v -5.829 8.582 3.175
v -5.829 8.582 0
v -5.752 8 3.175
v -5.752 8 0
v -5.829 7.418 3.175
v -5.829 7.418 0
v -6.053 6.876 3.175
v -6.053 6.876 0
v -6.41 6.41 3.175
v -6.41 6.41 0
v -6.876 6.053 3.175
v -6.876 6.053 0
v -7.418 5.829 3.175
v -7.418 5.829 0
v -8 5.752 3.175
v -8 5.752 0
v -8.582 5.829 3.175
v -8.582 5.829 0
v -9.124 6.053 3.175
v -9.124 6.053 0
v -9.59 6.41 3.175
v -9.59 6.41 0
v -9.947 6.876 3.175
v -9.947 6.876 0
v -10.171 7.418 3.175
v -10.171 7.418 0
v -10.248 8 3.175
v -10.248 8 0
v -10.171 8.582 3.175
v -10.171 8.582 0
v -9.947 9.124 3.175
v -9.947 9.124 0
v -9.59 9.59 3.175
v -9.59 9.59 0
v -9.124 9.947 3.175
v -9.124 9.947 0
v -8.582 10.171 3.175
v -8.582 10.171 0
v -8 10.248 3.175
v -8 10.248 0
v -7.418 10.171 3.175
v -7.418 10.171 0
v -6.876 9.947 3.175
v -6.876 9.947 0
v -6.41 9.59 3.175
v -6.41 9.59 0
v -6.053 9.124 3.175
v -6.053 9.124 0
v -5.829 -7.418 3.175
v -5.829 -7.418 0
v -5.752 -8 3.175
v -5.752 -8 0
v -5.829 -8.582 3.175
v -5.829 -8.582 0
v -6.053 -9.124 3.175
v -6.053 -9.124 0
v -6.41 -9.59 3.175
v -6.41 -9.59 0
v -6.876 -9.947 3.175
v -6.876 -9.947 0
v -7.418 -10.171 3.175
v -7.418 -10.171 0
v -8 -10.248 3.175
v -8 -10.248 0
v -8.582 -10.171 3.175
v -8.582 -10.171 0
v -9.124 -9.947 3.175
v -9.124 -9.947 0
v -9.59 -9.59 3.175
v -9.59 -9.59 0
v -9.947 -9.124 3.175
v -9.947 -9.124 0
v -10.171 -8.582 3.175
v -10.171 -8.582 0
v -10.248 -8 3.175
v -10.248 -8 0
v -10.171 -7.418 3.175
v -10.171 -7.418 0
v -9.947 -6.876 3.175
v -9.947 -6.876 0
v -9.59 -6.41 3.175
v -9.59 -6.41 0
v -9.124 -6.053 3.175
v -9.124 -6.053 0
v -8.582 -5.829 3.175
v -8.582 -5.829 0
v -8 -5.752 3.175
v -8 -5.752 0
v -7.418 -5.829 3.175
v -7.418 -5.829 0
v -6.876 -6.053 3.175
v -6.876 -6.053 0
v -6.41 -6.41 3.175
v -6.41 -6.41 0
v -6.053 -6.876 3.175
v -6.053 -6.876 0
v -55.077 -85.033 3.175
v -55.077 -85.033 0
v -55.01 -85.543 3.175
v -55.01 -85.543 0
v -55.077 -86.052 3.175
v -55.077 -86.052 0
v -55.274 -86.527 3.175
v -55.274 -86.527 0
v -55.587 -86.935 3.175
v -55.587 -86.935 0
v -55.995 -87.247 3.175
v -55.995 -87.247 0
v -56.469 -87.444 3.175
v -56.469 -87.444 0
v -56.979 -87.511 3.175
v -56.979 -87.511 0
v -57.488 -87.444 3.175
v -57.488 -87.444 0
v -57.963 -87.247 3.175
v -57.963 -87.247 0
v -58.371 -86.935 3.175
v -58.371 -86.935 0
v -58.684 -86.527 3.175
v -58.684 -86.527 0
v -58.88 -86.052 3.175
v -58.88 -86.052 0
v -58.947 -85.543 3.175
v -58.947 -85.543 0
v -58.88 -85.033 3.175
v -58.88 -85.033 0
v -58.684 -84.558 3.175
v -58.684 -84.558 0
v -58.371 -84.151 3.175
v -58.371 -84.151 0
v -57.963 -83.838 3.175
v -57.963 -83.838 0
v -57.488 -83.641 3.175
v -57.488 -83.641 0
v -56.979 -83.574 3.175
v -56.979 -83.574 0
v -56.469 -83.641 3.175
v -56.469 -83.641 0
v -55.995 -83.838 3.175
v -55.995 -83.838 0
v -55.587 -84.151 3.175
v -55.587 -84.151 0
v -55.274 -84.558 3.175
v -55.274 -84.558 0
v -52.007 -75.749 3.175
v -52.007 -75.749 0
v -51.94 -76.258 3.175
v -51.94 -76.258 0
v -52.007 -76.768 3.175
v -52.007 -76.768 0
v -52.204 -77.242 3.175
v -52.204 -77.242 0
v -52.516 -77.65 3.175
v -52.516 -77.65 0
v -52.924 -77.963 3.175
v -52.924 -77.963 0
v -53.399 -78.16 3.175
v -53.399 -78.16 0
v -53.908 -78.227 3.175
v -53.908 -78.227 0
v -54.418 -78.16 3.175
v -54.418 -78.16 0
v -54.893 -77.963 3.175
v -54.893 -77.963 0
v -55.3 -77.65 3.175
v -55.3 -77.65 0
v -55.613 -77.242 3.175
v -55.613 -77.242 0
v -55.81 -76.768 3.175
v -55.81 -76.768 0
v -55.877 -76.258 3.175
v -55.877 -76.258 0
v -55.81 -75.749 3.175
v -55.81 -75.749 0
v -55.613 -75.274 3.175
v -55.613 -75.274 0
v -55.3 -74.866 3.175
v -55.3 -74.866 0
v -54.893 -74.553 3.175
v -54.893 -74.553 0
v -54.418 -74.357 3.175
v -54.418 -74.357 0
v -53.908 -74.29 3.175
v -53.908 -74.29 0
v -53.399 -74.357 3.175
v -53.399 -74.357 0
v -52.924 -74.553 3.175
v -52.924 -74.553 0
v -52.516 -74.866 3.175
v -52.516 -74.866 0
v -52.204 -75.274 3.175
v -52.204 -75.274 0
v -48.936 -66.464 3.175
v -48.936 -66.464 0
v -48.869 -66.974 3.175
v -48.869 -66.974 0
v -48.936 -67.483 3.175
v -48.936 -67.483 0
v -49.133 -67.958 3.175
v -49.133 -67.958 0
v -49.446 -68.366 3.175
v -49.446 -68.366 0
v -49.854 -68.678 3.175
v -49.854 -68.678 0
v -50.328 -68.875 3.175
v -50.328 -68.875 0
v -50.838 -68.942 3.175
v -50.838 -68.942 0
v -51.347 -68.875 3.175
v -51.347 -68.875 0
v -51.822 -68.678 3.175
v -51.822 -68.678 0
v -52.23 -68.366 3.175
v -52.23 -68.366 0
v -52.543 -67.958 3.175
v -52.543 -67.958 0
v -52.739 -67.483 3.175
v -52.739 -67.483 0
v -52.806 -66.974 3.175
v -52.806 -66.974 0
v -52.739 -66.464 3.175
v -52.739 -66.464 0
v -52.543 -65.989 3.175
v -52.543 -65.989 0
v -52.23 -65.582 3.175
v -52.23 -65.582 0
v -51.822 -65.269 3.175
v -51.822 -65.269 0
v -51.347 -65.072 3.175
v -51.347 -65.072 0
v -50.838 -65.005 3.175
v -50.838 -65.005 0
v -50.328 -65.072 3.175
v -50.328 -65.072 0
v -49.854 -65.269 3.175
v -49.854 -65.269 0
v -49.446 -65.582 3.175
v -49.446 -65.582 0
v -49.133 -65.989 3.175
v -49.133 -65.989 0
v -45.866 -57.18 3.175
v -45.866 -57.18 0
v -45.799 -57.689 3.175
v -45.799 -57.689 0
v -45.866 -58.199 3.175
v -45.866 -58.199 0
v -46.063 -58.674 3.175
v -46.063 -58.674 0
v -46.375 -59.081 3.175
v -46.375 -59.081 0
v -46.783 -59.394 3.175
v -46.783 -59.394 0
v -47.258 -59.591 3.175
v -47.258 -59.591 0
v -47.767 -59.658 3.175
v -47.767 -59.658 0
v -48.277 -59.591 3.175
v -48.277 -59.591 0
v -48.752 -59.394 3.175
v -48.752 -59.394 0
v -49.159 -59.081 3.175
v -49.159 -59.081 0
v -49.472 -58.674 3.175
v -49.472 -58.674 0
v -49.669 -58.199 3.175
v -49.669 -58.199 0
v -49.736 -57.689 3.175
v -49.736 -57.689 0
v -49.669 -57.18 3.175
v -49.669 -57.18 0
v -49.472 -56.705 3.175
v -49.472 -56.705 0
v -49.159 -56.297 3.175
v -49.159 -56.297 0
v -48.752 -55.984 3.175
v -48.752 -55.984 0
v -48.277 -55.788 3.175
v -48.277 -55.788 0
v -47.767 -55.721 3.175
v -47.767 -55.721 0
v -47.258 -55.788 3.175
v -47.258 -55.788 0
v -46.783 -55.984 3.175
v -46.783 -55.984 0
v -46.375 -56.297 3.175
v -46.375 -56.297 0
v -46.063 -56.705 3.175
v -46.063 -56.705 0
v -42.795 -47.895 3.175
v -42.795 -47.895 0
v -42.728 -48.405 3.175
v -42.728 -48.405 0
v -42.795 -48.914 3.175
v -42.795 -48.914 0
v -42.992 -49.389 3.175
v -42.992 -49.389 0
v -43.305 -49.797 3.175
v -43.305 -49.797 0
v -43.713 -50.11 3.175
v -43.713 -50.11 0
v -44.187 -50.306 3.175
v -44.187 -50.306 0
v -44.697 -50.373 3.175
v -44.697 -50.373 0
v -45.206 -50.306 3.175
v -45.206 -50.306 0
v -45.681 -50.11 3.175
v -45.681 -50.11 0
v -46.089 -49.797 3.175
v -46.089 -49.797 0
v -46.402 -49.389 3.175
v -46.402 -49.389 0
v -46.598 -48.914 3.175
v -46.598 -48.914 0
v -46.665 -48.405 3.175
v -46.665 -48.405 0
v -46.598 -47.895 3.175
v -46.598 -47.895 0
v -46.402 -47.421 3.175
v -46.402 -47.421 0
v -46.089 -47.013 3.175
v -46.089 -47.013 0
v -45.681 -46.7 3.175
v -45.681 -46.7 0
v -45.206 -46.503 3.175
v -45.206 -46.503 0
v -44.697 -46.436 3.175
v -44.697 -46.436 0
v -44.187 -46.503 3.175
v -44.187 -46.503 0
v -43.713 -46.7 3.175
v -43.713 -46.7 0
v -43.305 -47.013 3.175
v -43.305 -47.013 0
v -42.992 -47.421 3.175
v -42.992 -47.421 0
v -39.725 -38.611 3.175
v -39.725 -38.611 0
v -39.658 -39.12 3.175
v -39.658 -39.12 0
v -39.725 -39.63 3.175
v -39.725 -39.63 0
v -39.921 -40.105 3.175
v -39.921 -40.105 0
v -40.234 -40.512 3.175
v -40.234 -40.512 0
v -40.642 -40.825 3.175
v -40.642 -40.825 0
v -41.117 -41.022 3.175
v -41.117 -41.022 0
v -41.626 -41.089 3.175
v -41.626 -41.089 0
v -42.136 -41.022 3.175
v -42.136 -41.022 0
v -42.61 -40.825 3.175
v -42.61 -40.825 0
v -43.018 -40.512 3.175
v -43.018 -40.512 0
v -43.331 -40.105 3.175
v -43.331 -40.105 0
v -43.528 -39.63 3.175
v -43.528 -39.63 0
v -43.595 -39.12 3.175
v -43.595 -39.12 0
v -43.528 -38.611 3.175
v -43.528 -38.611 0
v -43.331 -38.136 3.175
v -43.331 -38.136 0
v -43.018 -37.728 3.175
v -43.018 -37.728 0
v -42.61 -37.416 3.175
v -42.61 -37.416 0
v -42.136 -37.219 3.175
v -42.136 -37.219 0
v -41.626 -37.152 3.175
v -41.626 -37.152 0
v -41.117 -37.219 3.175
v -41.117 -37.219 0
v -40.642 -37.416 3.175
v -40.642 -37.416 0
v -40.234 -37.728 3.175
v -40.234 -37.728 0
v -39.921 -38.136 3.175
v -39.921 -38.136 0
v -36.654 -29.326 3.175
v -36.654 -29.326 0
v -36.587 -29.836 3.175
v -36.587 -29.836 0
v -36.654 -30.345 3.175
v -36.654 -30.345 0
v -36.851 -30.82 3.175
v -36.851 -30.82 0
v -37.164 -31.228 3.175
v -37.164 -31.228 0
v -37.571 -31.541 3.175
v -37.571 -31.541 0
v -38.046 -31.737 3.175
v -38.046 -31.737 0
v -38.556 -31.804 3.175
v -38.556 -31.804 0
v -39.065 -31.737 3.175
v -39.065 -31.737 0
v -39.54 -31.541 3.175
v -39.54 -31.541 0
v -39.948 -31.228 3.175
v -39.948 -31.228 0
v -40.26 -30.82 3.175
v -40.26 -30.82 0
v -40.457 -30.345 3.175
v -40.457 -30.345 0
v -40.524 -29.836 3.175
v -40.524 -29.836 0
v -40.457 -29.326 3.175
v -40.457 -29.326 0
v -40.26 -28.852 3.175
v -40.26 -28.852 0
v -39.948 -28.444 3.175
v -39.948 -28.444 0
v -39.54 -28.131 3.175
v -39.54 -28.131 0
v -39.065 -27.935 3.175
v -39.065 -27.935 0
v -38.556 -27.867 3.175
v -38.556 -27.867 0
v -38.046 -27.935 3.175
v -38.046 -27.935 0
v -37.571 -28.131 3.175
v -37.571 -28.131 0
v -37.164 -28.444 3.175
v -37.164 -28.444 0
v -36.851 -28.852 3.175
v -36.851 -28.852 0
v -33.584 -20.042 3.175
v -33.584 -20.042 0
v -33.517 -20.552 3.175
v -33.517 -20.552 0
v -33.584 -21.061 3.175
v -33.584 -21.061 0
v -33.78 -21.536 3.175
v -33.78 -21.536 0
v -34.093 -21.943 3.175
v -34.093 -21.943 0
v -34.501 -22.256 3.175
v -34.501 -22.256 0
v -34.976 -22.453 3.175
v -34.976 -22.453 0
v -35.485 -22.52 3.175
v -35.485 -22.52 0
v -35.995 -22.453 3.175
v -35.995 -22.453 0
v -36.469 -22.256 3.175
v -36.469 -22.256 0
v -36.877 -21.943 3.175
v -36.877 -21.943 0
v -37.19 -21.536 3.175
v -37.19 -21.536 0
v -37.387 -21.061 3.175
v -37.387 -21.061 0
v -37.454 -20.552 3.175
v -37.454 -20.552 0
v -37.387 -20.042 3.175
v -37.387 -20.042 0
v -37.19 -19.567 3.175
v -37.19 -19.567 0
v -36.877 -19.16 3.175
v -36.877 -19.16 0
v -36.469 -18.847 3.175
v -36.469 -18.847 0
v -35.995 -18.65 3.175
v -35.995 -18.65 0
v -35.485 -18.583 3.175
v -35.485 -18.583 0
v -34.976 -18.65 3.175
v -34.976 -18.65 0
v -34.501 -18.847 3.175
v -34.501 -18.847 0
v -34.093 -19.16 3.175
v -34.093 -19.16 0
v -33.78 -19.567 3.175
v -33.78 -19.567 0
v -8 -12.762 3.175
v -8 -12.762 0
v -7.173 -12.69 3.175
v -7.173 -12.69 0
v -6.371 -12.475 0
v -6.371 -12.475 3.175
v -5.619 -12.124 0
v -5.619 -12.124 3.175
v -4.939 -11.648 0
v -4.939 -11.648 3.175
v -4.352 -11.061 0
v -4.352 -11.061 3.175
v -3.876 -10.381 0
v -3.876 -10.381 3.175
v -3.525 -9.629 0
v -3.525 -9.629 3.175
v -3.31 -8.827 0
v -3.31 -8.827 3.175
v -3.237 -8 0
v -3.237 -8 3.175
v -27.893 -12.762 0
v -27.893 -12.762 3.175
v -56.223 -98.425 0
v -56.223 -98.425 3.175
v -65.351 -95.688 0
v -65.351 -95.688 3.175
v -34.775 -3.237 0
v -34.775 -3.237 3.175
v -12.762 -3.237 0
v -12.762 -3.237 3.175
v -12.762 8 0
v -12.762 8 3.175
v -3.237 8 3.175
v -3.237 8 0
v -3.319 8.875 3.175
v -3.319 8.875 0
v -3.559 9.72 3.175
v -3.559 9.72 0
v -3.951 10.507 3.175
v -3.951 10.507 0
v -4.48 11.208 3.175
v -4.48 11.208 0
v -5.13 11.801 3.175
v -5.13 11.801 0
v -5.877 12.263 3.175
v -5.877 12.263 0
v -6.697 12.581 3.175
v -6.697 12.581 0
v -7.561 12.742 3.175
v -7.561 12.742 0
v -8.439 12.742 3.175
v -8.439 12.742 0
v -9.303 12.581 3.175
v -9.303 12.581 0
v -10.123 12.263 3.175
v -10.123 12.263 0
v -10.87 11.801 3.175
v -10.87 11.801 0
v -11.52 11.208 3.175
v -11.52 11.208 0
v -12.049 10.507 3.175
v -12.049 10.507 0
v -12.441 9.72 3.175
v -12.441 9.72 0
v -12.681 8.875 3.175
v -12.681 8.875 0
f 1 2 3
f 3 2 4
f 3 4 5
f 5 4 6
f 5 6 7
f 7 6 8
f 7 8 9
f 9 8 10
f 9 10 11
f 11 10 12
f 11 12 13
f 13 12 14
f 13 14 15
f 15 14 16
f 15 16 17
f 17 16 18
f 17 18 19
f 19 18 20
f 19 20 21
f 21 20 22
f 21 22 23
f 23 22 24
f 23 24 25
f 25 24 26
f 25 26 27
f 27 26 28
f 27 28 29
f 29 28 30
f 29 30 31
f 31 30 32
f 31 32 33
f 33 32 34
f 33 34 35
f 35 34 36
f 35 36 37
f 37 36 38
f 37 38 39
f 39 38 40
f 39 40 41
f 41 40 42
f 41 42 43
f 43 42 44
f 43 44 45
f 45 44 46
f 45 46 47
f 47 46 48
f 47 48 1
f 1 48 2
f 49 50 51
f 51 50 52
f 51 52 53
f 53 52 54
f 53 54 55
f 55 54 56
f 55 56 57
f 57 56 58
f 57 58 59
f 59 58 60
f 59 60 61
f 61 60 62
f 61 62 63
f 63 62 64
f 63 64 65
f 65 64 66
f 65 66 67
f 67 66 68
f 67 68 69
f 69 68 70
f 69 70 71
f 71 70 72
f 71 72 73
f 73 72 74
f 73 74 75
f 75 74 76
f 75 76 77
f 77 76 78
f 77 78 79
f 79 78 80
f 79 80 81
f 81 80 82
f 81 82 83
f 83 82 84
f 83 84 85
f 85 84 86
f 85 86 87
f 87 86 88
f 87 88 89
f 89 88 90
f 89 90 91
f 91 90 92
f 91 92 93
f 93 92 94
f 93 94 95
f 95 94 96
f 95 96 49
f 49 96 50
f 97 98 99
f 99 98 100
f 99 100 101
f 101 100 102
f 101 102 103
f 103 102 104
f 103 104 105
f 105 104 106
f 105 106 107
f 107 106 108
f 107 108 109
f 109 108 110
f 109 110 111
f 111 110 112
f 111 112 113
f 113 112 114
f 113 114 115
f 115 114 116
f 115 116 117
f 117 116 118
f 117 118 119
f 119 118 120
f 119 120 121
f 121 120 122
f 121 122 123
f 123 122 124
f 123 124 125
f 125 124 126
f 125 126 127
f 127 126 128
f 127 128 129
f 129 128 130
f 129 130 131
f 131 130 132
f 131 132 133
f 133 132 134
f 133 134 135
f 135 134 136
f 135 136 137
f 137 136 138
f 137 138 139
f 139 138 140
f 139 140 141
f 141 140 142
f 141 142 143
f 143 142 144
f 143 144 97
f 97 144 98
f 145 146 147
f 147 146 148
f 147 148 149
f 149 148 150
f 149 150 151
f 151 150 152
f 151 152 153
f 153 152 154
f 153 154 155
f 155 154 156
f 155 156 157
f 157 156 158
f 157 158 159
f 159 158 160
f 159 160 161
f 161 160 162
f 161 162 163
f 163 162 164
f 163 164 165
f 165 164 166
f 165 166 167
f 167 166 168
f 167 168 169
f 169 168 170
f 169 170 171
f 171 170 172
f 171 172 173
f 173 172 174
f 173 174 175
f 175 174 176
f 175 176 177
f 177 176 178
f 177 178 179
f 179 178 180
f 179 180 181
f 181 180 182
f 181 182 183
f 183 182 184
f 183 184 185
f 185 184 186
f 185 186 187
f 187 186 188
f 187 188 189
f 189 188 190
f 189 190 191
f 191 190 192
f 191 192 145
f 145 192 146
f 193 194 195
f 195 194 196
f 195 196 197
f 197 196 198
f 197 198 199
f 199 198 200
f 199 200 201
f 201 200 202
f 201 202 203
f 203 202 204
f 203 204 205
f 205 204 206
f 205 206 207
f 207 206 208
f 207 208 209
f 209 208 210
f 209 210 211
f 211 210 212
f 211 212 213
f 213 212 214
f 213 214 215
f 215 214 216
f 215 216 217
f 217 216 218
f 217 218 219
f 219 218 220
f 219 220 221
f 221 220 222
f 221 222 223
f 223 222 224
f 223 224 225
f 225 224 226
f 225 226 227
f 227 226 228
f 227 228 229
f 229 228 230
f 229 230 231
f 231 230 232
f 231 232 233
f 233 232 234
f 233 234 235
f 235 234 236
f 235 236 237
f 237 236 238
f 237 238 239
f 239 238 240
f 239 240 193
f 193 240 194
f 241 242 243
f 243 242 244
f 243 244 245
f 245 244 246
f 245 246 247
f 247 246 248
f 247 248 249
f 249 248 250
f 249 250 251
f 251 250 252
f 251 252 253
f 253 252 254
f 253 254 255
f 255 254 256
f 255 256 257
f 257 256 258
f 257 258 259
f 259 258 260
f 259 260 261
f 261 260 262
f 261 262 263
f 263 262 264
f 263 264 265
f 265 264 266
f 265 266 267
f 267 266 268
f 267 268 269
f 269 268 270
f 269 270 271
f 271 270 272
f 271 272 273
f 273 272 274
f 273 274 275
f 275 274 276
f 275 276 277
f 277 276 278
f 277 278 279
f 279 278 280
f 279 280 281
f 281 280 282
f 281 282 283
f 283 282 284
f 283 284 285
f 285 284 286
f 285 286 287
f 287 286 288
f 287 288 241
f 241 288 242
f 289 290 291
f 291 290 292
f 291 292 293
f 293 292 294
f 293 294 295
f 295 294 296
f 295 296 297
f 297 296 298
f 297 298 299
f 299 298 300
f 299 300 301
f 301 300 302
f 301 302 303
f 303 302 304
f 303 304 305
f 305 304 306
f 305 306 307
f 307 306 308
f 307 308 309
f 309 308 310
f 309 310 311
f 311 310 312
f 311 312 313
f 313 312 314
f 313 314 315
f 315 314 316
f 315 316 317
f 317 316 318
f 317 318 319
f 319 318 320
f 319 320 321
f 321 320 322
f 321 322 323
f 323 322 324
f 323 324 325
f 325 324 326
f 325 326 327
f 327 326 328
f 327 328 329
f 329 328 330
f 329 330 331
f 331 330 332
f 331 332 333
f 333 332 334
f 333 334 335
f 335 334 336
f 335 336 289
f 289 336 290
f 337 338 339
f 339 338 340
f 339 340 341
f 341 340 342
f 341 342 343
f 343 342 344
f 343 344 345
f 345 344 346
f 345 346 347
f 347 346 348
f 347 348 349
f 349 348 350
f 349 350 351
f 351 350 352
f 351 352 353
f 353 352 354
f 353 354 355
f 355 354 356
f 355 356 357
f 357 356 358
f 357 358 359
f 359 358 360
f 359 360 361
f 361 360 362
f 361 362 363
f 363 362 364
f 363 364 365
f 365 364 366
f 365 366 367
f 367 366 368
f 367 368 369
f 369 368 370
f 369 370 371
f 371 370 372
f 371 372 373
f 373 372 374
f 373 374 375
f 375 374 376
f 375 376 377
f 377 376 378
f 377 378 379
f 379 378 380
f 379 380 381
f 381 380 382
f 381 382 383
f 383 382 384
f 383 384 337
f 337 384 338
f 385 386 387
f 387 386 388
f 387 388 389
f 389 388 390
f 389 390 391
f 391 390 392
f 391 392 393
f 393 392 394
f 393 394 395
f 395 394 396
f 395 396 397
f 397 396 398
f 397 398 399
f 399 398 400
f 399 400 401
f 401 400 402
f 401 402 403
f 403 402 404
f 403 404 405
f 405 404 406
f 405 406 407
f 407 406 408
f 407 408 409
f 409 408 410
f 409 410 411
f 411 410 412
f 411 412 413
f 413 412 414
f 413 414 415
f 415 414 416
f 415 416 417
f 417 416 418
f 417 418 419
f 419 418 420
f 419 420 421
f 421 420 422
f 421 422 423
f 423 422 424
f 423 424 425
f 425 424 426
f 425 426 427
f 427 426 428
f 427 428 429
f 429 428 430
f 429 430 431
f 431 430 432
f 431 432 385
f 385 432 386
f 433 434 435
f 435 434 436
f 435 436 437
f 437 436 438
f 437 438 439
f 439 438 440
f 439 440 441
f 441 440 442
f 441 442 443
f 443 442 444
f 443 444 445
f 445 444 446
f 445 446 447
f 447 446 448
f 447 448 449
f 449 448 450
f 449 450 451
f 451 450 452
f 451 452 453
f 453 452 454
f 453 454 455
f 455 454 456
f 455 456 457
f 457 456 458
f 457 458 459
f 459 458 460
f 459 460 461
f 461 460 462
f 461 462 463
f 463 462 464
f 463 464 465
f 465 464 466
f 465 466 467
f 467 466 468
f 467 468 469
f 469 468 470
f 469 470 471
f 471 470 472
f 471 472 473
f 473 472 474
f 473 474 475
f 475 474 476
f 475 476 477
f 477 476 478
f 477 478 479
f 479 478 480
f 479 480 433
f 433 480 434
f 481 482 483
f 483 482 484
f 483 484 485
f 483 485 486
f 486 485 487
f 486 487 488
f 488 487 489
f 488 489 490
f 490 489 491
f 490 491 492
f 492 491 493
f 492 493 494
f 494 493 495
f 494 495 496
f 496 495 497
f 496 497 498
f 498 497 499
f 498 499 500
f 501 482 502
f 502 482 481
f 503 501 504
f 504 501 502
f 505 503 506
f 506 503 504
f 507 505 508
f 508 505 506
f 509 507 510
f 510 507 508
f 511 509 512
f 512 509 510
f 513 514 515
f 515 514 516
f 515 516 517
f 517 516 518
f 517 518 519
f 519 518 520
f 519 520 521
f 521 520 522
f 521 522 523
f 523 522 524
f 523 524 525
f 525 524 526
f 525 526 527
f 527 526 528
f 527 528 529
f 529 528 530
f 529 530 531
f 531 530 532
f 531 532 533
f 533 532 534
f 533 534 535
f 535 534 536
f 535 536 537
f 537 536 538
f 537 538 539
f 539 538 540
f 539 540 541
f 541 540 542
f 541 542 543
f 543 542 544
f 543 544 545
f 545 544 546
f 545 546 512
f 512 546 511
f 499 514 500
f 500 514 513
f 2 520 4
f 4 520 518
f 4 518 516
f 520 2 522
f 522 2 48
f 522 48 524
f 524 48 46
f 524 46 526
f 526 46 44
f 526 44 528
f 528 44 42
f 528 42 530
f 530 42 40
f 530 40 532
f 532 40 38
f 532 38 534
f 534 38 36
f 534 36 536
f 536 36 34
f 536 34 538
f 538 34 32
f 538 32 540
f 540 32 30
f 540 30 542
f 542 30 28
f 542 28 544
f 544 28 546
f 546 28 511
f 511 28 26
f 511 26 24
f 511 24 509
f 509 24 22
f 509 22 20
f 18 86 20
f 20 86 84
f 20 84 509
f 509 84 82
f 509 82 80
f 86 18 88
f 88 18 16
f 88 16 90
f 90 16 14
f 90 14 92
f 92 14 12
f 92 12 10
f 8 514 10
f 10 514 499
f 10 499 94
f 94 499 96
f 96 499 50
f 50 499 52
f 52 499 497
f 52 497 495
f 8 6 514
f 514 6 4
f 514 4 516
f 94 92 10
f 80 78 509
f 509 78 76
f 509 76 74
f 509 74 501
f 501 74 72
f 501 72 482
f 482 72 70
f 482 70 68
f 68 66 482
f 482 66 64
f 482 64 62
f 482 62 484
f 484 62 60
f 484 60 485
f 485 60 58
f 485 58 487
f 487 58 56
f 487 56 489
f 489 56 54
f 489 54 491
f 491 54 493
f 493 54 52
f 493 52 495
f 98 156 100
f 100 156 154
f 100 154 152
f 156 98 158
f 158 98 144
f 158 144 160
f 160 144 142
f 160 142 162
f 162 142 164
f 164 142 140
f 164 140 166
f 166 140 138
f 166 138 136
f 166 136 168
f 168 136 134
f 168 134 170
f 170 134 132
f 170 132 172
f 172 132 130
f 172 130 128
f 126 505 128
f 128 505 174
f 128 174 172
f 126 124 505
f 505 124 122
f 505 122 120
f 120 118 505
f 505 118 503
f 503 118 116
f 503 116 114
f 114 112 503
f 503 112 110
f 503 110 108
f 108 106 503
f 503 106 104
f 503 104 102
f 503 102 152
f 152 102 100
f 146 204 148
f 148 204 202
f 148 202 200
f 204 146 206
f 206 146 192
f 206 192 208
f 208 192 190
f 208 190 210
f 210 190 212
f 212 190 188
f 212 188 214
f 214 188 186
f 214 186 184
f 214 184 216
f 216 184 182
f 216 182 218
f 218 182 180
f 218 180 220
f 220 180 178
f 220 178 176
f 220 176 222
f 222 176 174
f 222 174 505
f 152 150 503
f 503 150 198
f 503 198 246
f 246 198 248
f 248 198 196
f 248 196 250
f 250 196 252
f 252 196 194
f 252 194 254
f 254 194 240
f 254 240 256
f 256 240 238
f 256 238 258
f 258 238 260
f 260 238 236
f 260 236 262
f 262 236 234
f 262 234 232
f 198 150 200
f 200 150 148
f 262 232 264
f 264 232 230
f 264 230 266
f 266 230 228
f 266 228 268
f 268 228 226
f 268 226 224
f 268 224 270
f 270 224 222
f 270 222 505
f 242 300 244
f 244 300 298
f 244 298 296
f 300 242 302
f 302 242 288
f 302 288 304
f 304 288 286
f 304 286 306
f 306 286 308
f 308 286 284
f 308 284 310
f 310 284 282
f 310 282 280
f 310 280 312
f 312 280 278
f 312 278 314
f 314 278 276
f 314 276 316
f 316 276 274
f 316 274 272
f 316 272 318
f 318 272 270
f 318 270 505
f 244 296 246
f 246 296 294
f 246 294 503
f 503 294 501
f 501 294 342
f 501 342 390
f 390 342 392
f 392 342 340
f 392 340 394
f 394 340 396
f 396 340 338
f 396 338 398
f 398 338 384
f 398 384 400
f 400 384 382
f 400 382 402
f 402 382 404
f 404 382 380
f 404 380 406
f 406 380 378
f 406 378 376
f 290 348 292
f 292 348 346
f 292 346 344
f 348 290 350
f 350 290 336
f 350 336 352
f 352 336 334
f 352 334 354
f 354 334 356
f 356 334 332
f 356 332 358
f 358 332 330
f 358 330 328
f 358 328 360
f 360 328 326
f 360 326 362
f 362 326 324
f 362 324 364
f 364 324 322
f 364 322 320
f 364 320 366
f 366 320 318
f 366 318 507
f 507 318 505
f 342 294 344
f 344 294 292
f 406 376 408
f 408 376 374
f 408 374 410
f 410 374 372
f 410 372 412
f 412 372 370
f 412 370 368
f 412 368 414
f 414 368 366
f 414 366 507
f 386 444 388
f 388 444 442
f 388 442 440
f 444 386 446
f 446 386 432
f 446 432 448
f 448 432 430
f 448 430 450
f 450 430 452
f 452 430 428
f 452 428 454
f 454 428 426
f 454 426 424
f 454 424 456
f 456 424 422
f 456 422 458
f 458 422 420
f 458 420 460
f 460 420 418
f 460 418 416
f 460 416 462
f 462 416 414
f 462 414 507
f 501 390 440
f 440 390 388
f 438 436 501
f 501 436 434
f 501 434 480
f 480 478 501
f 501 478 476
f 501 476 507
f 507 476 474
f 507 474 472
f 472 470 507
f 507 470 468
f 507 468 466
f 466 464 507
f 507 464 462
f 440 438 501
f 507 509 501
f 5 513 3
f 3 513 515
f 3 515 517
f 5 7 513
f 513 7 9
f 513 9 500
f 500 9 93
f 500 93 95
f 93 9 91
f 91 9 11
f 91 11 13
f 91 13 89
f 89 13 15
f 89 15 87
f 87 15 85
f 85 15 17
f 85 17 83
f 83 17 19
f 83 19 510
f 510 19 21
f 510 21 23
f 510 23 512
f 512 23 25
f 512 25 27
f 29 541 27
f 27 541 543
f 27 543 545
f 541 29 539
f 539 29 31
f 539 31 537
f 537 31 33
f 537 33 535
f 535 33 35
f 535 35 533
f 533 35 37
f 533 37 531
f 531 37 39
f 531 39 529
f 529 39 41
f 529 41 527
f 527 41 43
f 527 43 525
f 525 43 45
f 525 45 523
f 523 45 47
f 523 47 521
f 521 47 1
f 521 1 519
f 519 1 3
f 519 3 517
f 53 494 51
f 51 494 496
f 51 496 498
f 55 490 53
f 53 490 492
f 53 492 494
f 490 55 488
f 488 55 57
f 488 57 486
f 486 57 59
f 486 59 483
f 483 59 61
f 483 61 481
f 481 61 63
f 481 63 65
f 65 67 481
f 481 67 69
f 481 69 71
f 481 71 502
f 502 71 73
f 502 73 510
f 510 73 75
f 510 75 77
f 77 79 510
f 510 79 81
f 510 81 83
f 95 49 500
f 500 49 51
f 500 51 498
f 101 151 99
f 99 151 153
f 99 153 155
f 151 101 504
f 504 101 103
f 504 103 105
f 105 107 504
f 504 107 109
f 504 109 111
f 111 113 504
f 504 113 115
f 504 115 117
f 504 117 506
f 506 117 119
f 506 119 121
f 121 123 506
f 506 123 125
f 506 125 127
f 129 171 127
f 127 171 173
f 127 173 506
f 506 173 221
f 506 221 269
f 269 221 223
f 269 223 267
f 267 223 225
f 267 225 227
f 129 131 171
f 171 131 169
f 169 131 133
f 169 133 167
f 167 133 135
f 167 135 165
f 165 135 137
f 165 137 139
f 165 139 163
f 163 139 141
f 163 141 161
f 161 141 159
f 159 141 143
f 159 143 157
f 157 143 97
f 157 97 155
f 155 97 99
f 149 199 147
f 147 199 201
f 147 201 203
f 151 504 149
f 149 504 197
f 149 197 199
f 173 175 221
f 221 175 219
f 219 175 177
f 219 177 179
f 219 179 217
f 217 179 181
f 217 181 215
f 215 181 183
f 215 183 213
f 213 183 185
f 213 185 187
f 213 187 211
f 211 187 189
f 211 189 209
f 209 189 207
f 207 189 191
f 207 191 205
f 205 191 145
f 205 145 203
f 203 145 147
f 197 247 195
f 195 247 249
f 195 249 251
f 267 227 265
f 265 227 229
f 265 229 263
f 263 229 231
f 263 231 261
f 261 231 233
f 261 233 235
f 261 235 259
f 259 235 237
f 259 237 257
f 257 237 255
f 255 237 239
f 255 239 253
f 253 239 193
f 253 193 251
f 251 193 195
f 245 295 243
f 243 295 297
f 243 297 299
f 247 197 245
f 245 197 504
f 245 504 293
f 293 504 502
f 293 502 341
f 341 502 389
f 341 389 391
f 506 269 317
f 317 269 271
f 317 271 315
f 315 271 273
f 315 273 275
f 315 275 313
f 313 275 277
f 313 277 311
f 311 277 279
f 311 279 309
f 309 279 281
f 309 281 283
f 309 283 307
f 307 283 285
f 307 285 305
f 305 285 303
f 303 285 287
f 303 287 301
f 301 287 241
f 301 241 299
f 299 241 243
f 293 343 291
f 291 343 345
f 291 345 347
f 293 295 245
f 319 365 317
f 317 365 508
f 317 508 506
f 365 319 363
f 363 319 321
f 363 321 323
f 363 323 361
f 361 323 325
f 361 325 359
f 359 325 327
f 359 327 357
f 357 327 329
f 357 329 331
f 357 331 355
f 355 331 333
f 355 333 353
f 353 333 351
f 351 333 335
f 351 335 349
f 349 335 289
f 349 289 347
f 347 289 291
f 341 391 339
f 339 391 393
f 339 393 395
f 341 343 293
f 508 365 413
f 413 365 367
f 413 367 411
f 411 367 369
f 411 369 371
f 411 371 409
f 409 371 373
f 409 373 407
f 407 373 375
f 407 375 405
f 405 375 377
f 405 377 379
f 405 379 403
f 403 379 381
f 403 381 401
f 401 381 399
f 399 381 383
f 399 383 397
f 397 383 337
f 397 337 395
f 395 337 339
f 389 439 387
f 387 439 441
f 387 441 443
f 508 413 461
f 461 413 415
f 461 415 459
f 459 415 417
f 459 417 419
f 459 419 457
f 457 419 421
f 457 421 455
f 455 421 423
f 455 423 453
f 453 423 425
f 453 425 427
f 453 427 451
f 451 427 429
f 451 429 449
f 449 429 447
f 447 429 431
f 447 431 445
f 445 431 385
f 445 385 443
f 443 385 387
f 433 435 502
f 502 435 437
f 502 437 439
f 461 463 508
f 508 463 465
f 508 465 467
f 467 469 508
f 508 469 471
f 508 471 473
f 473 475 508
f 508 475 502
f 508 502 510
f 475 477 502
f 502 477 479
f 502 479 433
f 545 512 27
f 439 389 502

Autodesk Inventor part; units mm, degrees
ref_plane "YZ Plane" through (0, 0, 0) normal (1, 0, 0) x (0, 1, 0)
ref_plane "XZ Plane" through (0, 0, 0) normal (0, 1, 0) x (-1, 0, 0)
ref_plane "XY Plane" through (0, 0, 0) normal (0, 0, 1) x (1, 0, 0)
ref_plane "Work Plane3" through (0, 0, 0) normal (0, 0, 1) x (1, 0, 0)
sketch "Sketch2" plane through (0, 0, 0) normal (0, 0, 1) x (1, 0, 0)
  arc A0 (-7.5753, -9.9544) -> (-9.0817, -9.6822) centre (-8, -8) ccw construction
  arc A1 (-9.9544, 7.5753) -> (-9.6822, 9.0817) centre (-8, 8) ccw construction
  line L0 (-8, 8) -> (-8, -8) construction
  line L1 (-3.2375, 8) -> (-3.2375, -8)
  line L2 (-12.7625, 8) -> (-12.7625, -3.2375)
  arc A2 (-3.2375, 8) -> (-12.7625, 8) centre (-8, 8) ccw
  arc A3 (-3.2375, 8) -> (-12.7625, 8) centre (-8, 8) ccw construction
  arc A4 (-8, -12.7625) -> (-3.2375, -8) centre (-8, -8) ccw
  line L3 (-76.8525, -130.4672) -> (11.0654, 135.3719) construction
  line L4 (-12.7625, -3.2375) -> (-34.7753, -3.2375)
  line L5 (-67.8092, -133.458) -> (20.1087, 132.3811) construction
  line L6 (-8, -12.7625) -> (-27.893, -12.7625)
  arc A5 (1.9836, 0.2558) -> (1.5702, -1.2387) centre (0, 0) ccw construction
  circle A6 centre (0, 0) radius 115.8748 construction
  line L7 (-34.7753, -3.2375) -> (-65.3505, -95.6884)
  line L8 (-65.3505, -95.6884) -> (-56.2232, -98.425)
  line L9 (-27.893, -12.7625) -> (-56.2232, -98.425)
  line L10 (-27.893, -12.7625) -> (-36.9363, -9.7717) construction
  line L11 (-60.7868, -97.0567) -> (-32.4146, -11.2671) construction
  circle A7 centre (-35.4852, -20.5515) radius 1.9685
  circle A8 centre (-38.5557, -29.836) radius 1.9685
  circle A9 centre (-41.6262, -39.1204) radius 1.9685
  circle A10 centre (-44.6968, -48.4048) radius 1.9685
  circle A11 centre (-47.7673, -57.6893) radius 1.9685
  circle A12 centre (-50.8378, -66.9737) radius 1.9685
  circle A13 centre (-53.9084, -76.2581) radius 1.9685
  circle A14 centre (-56.9789, -85.5426) radius 1.9685
  circle A15 centre (-8, -8) radius 2.2479
  circle A16 centre (-8, 8) radius 2.2479
  point P0 (0, 0)
  dimension "d6" = 231.7496
  dimension "d0" = 4.7625
  dimension "d1" = 4.7625
  dimension "d2" = 4.7625
  dimension "d3" = 4.7625
  dimension "d4" = 9.525
  dimension "d5" = 9.525
  dimension "d7" = 3.937
  dimension "d8" = 9.779
  dimension "d11" = 9.779
  dimension "d16" = 4.4958
  dimension "d17" = 4.4958
extrude "Extrusion1" add sketch "Sketch2" along normal blind 3.175
properties part number "CollectorArmZ"
